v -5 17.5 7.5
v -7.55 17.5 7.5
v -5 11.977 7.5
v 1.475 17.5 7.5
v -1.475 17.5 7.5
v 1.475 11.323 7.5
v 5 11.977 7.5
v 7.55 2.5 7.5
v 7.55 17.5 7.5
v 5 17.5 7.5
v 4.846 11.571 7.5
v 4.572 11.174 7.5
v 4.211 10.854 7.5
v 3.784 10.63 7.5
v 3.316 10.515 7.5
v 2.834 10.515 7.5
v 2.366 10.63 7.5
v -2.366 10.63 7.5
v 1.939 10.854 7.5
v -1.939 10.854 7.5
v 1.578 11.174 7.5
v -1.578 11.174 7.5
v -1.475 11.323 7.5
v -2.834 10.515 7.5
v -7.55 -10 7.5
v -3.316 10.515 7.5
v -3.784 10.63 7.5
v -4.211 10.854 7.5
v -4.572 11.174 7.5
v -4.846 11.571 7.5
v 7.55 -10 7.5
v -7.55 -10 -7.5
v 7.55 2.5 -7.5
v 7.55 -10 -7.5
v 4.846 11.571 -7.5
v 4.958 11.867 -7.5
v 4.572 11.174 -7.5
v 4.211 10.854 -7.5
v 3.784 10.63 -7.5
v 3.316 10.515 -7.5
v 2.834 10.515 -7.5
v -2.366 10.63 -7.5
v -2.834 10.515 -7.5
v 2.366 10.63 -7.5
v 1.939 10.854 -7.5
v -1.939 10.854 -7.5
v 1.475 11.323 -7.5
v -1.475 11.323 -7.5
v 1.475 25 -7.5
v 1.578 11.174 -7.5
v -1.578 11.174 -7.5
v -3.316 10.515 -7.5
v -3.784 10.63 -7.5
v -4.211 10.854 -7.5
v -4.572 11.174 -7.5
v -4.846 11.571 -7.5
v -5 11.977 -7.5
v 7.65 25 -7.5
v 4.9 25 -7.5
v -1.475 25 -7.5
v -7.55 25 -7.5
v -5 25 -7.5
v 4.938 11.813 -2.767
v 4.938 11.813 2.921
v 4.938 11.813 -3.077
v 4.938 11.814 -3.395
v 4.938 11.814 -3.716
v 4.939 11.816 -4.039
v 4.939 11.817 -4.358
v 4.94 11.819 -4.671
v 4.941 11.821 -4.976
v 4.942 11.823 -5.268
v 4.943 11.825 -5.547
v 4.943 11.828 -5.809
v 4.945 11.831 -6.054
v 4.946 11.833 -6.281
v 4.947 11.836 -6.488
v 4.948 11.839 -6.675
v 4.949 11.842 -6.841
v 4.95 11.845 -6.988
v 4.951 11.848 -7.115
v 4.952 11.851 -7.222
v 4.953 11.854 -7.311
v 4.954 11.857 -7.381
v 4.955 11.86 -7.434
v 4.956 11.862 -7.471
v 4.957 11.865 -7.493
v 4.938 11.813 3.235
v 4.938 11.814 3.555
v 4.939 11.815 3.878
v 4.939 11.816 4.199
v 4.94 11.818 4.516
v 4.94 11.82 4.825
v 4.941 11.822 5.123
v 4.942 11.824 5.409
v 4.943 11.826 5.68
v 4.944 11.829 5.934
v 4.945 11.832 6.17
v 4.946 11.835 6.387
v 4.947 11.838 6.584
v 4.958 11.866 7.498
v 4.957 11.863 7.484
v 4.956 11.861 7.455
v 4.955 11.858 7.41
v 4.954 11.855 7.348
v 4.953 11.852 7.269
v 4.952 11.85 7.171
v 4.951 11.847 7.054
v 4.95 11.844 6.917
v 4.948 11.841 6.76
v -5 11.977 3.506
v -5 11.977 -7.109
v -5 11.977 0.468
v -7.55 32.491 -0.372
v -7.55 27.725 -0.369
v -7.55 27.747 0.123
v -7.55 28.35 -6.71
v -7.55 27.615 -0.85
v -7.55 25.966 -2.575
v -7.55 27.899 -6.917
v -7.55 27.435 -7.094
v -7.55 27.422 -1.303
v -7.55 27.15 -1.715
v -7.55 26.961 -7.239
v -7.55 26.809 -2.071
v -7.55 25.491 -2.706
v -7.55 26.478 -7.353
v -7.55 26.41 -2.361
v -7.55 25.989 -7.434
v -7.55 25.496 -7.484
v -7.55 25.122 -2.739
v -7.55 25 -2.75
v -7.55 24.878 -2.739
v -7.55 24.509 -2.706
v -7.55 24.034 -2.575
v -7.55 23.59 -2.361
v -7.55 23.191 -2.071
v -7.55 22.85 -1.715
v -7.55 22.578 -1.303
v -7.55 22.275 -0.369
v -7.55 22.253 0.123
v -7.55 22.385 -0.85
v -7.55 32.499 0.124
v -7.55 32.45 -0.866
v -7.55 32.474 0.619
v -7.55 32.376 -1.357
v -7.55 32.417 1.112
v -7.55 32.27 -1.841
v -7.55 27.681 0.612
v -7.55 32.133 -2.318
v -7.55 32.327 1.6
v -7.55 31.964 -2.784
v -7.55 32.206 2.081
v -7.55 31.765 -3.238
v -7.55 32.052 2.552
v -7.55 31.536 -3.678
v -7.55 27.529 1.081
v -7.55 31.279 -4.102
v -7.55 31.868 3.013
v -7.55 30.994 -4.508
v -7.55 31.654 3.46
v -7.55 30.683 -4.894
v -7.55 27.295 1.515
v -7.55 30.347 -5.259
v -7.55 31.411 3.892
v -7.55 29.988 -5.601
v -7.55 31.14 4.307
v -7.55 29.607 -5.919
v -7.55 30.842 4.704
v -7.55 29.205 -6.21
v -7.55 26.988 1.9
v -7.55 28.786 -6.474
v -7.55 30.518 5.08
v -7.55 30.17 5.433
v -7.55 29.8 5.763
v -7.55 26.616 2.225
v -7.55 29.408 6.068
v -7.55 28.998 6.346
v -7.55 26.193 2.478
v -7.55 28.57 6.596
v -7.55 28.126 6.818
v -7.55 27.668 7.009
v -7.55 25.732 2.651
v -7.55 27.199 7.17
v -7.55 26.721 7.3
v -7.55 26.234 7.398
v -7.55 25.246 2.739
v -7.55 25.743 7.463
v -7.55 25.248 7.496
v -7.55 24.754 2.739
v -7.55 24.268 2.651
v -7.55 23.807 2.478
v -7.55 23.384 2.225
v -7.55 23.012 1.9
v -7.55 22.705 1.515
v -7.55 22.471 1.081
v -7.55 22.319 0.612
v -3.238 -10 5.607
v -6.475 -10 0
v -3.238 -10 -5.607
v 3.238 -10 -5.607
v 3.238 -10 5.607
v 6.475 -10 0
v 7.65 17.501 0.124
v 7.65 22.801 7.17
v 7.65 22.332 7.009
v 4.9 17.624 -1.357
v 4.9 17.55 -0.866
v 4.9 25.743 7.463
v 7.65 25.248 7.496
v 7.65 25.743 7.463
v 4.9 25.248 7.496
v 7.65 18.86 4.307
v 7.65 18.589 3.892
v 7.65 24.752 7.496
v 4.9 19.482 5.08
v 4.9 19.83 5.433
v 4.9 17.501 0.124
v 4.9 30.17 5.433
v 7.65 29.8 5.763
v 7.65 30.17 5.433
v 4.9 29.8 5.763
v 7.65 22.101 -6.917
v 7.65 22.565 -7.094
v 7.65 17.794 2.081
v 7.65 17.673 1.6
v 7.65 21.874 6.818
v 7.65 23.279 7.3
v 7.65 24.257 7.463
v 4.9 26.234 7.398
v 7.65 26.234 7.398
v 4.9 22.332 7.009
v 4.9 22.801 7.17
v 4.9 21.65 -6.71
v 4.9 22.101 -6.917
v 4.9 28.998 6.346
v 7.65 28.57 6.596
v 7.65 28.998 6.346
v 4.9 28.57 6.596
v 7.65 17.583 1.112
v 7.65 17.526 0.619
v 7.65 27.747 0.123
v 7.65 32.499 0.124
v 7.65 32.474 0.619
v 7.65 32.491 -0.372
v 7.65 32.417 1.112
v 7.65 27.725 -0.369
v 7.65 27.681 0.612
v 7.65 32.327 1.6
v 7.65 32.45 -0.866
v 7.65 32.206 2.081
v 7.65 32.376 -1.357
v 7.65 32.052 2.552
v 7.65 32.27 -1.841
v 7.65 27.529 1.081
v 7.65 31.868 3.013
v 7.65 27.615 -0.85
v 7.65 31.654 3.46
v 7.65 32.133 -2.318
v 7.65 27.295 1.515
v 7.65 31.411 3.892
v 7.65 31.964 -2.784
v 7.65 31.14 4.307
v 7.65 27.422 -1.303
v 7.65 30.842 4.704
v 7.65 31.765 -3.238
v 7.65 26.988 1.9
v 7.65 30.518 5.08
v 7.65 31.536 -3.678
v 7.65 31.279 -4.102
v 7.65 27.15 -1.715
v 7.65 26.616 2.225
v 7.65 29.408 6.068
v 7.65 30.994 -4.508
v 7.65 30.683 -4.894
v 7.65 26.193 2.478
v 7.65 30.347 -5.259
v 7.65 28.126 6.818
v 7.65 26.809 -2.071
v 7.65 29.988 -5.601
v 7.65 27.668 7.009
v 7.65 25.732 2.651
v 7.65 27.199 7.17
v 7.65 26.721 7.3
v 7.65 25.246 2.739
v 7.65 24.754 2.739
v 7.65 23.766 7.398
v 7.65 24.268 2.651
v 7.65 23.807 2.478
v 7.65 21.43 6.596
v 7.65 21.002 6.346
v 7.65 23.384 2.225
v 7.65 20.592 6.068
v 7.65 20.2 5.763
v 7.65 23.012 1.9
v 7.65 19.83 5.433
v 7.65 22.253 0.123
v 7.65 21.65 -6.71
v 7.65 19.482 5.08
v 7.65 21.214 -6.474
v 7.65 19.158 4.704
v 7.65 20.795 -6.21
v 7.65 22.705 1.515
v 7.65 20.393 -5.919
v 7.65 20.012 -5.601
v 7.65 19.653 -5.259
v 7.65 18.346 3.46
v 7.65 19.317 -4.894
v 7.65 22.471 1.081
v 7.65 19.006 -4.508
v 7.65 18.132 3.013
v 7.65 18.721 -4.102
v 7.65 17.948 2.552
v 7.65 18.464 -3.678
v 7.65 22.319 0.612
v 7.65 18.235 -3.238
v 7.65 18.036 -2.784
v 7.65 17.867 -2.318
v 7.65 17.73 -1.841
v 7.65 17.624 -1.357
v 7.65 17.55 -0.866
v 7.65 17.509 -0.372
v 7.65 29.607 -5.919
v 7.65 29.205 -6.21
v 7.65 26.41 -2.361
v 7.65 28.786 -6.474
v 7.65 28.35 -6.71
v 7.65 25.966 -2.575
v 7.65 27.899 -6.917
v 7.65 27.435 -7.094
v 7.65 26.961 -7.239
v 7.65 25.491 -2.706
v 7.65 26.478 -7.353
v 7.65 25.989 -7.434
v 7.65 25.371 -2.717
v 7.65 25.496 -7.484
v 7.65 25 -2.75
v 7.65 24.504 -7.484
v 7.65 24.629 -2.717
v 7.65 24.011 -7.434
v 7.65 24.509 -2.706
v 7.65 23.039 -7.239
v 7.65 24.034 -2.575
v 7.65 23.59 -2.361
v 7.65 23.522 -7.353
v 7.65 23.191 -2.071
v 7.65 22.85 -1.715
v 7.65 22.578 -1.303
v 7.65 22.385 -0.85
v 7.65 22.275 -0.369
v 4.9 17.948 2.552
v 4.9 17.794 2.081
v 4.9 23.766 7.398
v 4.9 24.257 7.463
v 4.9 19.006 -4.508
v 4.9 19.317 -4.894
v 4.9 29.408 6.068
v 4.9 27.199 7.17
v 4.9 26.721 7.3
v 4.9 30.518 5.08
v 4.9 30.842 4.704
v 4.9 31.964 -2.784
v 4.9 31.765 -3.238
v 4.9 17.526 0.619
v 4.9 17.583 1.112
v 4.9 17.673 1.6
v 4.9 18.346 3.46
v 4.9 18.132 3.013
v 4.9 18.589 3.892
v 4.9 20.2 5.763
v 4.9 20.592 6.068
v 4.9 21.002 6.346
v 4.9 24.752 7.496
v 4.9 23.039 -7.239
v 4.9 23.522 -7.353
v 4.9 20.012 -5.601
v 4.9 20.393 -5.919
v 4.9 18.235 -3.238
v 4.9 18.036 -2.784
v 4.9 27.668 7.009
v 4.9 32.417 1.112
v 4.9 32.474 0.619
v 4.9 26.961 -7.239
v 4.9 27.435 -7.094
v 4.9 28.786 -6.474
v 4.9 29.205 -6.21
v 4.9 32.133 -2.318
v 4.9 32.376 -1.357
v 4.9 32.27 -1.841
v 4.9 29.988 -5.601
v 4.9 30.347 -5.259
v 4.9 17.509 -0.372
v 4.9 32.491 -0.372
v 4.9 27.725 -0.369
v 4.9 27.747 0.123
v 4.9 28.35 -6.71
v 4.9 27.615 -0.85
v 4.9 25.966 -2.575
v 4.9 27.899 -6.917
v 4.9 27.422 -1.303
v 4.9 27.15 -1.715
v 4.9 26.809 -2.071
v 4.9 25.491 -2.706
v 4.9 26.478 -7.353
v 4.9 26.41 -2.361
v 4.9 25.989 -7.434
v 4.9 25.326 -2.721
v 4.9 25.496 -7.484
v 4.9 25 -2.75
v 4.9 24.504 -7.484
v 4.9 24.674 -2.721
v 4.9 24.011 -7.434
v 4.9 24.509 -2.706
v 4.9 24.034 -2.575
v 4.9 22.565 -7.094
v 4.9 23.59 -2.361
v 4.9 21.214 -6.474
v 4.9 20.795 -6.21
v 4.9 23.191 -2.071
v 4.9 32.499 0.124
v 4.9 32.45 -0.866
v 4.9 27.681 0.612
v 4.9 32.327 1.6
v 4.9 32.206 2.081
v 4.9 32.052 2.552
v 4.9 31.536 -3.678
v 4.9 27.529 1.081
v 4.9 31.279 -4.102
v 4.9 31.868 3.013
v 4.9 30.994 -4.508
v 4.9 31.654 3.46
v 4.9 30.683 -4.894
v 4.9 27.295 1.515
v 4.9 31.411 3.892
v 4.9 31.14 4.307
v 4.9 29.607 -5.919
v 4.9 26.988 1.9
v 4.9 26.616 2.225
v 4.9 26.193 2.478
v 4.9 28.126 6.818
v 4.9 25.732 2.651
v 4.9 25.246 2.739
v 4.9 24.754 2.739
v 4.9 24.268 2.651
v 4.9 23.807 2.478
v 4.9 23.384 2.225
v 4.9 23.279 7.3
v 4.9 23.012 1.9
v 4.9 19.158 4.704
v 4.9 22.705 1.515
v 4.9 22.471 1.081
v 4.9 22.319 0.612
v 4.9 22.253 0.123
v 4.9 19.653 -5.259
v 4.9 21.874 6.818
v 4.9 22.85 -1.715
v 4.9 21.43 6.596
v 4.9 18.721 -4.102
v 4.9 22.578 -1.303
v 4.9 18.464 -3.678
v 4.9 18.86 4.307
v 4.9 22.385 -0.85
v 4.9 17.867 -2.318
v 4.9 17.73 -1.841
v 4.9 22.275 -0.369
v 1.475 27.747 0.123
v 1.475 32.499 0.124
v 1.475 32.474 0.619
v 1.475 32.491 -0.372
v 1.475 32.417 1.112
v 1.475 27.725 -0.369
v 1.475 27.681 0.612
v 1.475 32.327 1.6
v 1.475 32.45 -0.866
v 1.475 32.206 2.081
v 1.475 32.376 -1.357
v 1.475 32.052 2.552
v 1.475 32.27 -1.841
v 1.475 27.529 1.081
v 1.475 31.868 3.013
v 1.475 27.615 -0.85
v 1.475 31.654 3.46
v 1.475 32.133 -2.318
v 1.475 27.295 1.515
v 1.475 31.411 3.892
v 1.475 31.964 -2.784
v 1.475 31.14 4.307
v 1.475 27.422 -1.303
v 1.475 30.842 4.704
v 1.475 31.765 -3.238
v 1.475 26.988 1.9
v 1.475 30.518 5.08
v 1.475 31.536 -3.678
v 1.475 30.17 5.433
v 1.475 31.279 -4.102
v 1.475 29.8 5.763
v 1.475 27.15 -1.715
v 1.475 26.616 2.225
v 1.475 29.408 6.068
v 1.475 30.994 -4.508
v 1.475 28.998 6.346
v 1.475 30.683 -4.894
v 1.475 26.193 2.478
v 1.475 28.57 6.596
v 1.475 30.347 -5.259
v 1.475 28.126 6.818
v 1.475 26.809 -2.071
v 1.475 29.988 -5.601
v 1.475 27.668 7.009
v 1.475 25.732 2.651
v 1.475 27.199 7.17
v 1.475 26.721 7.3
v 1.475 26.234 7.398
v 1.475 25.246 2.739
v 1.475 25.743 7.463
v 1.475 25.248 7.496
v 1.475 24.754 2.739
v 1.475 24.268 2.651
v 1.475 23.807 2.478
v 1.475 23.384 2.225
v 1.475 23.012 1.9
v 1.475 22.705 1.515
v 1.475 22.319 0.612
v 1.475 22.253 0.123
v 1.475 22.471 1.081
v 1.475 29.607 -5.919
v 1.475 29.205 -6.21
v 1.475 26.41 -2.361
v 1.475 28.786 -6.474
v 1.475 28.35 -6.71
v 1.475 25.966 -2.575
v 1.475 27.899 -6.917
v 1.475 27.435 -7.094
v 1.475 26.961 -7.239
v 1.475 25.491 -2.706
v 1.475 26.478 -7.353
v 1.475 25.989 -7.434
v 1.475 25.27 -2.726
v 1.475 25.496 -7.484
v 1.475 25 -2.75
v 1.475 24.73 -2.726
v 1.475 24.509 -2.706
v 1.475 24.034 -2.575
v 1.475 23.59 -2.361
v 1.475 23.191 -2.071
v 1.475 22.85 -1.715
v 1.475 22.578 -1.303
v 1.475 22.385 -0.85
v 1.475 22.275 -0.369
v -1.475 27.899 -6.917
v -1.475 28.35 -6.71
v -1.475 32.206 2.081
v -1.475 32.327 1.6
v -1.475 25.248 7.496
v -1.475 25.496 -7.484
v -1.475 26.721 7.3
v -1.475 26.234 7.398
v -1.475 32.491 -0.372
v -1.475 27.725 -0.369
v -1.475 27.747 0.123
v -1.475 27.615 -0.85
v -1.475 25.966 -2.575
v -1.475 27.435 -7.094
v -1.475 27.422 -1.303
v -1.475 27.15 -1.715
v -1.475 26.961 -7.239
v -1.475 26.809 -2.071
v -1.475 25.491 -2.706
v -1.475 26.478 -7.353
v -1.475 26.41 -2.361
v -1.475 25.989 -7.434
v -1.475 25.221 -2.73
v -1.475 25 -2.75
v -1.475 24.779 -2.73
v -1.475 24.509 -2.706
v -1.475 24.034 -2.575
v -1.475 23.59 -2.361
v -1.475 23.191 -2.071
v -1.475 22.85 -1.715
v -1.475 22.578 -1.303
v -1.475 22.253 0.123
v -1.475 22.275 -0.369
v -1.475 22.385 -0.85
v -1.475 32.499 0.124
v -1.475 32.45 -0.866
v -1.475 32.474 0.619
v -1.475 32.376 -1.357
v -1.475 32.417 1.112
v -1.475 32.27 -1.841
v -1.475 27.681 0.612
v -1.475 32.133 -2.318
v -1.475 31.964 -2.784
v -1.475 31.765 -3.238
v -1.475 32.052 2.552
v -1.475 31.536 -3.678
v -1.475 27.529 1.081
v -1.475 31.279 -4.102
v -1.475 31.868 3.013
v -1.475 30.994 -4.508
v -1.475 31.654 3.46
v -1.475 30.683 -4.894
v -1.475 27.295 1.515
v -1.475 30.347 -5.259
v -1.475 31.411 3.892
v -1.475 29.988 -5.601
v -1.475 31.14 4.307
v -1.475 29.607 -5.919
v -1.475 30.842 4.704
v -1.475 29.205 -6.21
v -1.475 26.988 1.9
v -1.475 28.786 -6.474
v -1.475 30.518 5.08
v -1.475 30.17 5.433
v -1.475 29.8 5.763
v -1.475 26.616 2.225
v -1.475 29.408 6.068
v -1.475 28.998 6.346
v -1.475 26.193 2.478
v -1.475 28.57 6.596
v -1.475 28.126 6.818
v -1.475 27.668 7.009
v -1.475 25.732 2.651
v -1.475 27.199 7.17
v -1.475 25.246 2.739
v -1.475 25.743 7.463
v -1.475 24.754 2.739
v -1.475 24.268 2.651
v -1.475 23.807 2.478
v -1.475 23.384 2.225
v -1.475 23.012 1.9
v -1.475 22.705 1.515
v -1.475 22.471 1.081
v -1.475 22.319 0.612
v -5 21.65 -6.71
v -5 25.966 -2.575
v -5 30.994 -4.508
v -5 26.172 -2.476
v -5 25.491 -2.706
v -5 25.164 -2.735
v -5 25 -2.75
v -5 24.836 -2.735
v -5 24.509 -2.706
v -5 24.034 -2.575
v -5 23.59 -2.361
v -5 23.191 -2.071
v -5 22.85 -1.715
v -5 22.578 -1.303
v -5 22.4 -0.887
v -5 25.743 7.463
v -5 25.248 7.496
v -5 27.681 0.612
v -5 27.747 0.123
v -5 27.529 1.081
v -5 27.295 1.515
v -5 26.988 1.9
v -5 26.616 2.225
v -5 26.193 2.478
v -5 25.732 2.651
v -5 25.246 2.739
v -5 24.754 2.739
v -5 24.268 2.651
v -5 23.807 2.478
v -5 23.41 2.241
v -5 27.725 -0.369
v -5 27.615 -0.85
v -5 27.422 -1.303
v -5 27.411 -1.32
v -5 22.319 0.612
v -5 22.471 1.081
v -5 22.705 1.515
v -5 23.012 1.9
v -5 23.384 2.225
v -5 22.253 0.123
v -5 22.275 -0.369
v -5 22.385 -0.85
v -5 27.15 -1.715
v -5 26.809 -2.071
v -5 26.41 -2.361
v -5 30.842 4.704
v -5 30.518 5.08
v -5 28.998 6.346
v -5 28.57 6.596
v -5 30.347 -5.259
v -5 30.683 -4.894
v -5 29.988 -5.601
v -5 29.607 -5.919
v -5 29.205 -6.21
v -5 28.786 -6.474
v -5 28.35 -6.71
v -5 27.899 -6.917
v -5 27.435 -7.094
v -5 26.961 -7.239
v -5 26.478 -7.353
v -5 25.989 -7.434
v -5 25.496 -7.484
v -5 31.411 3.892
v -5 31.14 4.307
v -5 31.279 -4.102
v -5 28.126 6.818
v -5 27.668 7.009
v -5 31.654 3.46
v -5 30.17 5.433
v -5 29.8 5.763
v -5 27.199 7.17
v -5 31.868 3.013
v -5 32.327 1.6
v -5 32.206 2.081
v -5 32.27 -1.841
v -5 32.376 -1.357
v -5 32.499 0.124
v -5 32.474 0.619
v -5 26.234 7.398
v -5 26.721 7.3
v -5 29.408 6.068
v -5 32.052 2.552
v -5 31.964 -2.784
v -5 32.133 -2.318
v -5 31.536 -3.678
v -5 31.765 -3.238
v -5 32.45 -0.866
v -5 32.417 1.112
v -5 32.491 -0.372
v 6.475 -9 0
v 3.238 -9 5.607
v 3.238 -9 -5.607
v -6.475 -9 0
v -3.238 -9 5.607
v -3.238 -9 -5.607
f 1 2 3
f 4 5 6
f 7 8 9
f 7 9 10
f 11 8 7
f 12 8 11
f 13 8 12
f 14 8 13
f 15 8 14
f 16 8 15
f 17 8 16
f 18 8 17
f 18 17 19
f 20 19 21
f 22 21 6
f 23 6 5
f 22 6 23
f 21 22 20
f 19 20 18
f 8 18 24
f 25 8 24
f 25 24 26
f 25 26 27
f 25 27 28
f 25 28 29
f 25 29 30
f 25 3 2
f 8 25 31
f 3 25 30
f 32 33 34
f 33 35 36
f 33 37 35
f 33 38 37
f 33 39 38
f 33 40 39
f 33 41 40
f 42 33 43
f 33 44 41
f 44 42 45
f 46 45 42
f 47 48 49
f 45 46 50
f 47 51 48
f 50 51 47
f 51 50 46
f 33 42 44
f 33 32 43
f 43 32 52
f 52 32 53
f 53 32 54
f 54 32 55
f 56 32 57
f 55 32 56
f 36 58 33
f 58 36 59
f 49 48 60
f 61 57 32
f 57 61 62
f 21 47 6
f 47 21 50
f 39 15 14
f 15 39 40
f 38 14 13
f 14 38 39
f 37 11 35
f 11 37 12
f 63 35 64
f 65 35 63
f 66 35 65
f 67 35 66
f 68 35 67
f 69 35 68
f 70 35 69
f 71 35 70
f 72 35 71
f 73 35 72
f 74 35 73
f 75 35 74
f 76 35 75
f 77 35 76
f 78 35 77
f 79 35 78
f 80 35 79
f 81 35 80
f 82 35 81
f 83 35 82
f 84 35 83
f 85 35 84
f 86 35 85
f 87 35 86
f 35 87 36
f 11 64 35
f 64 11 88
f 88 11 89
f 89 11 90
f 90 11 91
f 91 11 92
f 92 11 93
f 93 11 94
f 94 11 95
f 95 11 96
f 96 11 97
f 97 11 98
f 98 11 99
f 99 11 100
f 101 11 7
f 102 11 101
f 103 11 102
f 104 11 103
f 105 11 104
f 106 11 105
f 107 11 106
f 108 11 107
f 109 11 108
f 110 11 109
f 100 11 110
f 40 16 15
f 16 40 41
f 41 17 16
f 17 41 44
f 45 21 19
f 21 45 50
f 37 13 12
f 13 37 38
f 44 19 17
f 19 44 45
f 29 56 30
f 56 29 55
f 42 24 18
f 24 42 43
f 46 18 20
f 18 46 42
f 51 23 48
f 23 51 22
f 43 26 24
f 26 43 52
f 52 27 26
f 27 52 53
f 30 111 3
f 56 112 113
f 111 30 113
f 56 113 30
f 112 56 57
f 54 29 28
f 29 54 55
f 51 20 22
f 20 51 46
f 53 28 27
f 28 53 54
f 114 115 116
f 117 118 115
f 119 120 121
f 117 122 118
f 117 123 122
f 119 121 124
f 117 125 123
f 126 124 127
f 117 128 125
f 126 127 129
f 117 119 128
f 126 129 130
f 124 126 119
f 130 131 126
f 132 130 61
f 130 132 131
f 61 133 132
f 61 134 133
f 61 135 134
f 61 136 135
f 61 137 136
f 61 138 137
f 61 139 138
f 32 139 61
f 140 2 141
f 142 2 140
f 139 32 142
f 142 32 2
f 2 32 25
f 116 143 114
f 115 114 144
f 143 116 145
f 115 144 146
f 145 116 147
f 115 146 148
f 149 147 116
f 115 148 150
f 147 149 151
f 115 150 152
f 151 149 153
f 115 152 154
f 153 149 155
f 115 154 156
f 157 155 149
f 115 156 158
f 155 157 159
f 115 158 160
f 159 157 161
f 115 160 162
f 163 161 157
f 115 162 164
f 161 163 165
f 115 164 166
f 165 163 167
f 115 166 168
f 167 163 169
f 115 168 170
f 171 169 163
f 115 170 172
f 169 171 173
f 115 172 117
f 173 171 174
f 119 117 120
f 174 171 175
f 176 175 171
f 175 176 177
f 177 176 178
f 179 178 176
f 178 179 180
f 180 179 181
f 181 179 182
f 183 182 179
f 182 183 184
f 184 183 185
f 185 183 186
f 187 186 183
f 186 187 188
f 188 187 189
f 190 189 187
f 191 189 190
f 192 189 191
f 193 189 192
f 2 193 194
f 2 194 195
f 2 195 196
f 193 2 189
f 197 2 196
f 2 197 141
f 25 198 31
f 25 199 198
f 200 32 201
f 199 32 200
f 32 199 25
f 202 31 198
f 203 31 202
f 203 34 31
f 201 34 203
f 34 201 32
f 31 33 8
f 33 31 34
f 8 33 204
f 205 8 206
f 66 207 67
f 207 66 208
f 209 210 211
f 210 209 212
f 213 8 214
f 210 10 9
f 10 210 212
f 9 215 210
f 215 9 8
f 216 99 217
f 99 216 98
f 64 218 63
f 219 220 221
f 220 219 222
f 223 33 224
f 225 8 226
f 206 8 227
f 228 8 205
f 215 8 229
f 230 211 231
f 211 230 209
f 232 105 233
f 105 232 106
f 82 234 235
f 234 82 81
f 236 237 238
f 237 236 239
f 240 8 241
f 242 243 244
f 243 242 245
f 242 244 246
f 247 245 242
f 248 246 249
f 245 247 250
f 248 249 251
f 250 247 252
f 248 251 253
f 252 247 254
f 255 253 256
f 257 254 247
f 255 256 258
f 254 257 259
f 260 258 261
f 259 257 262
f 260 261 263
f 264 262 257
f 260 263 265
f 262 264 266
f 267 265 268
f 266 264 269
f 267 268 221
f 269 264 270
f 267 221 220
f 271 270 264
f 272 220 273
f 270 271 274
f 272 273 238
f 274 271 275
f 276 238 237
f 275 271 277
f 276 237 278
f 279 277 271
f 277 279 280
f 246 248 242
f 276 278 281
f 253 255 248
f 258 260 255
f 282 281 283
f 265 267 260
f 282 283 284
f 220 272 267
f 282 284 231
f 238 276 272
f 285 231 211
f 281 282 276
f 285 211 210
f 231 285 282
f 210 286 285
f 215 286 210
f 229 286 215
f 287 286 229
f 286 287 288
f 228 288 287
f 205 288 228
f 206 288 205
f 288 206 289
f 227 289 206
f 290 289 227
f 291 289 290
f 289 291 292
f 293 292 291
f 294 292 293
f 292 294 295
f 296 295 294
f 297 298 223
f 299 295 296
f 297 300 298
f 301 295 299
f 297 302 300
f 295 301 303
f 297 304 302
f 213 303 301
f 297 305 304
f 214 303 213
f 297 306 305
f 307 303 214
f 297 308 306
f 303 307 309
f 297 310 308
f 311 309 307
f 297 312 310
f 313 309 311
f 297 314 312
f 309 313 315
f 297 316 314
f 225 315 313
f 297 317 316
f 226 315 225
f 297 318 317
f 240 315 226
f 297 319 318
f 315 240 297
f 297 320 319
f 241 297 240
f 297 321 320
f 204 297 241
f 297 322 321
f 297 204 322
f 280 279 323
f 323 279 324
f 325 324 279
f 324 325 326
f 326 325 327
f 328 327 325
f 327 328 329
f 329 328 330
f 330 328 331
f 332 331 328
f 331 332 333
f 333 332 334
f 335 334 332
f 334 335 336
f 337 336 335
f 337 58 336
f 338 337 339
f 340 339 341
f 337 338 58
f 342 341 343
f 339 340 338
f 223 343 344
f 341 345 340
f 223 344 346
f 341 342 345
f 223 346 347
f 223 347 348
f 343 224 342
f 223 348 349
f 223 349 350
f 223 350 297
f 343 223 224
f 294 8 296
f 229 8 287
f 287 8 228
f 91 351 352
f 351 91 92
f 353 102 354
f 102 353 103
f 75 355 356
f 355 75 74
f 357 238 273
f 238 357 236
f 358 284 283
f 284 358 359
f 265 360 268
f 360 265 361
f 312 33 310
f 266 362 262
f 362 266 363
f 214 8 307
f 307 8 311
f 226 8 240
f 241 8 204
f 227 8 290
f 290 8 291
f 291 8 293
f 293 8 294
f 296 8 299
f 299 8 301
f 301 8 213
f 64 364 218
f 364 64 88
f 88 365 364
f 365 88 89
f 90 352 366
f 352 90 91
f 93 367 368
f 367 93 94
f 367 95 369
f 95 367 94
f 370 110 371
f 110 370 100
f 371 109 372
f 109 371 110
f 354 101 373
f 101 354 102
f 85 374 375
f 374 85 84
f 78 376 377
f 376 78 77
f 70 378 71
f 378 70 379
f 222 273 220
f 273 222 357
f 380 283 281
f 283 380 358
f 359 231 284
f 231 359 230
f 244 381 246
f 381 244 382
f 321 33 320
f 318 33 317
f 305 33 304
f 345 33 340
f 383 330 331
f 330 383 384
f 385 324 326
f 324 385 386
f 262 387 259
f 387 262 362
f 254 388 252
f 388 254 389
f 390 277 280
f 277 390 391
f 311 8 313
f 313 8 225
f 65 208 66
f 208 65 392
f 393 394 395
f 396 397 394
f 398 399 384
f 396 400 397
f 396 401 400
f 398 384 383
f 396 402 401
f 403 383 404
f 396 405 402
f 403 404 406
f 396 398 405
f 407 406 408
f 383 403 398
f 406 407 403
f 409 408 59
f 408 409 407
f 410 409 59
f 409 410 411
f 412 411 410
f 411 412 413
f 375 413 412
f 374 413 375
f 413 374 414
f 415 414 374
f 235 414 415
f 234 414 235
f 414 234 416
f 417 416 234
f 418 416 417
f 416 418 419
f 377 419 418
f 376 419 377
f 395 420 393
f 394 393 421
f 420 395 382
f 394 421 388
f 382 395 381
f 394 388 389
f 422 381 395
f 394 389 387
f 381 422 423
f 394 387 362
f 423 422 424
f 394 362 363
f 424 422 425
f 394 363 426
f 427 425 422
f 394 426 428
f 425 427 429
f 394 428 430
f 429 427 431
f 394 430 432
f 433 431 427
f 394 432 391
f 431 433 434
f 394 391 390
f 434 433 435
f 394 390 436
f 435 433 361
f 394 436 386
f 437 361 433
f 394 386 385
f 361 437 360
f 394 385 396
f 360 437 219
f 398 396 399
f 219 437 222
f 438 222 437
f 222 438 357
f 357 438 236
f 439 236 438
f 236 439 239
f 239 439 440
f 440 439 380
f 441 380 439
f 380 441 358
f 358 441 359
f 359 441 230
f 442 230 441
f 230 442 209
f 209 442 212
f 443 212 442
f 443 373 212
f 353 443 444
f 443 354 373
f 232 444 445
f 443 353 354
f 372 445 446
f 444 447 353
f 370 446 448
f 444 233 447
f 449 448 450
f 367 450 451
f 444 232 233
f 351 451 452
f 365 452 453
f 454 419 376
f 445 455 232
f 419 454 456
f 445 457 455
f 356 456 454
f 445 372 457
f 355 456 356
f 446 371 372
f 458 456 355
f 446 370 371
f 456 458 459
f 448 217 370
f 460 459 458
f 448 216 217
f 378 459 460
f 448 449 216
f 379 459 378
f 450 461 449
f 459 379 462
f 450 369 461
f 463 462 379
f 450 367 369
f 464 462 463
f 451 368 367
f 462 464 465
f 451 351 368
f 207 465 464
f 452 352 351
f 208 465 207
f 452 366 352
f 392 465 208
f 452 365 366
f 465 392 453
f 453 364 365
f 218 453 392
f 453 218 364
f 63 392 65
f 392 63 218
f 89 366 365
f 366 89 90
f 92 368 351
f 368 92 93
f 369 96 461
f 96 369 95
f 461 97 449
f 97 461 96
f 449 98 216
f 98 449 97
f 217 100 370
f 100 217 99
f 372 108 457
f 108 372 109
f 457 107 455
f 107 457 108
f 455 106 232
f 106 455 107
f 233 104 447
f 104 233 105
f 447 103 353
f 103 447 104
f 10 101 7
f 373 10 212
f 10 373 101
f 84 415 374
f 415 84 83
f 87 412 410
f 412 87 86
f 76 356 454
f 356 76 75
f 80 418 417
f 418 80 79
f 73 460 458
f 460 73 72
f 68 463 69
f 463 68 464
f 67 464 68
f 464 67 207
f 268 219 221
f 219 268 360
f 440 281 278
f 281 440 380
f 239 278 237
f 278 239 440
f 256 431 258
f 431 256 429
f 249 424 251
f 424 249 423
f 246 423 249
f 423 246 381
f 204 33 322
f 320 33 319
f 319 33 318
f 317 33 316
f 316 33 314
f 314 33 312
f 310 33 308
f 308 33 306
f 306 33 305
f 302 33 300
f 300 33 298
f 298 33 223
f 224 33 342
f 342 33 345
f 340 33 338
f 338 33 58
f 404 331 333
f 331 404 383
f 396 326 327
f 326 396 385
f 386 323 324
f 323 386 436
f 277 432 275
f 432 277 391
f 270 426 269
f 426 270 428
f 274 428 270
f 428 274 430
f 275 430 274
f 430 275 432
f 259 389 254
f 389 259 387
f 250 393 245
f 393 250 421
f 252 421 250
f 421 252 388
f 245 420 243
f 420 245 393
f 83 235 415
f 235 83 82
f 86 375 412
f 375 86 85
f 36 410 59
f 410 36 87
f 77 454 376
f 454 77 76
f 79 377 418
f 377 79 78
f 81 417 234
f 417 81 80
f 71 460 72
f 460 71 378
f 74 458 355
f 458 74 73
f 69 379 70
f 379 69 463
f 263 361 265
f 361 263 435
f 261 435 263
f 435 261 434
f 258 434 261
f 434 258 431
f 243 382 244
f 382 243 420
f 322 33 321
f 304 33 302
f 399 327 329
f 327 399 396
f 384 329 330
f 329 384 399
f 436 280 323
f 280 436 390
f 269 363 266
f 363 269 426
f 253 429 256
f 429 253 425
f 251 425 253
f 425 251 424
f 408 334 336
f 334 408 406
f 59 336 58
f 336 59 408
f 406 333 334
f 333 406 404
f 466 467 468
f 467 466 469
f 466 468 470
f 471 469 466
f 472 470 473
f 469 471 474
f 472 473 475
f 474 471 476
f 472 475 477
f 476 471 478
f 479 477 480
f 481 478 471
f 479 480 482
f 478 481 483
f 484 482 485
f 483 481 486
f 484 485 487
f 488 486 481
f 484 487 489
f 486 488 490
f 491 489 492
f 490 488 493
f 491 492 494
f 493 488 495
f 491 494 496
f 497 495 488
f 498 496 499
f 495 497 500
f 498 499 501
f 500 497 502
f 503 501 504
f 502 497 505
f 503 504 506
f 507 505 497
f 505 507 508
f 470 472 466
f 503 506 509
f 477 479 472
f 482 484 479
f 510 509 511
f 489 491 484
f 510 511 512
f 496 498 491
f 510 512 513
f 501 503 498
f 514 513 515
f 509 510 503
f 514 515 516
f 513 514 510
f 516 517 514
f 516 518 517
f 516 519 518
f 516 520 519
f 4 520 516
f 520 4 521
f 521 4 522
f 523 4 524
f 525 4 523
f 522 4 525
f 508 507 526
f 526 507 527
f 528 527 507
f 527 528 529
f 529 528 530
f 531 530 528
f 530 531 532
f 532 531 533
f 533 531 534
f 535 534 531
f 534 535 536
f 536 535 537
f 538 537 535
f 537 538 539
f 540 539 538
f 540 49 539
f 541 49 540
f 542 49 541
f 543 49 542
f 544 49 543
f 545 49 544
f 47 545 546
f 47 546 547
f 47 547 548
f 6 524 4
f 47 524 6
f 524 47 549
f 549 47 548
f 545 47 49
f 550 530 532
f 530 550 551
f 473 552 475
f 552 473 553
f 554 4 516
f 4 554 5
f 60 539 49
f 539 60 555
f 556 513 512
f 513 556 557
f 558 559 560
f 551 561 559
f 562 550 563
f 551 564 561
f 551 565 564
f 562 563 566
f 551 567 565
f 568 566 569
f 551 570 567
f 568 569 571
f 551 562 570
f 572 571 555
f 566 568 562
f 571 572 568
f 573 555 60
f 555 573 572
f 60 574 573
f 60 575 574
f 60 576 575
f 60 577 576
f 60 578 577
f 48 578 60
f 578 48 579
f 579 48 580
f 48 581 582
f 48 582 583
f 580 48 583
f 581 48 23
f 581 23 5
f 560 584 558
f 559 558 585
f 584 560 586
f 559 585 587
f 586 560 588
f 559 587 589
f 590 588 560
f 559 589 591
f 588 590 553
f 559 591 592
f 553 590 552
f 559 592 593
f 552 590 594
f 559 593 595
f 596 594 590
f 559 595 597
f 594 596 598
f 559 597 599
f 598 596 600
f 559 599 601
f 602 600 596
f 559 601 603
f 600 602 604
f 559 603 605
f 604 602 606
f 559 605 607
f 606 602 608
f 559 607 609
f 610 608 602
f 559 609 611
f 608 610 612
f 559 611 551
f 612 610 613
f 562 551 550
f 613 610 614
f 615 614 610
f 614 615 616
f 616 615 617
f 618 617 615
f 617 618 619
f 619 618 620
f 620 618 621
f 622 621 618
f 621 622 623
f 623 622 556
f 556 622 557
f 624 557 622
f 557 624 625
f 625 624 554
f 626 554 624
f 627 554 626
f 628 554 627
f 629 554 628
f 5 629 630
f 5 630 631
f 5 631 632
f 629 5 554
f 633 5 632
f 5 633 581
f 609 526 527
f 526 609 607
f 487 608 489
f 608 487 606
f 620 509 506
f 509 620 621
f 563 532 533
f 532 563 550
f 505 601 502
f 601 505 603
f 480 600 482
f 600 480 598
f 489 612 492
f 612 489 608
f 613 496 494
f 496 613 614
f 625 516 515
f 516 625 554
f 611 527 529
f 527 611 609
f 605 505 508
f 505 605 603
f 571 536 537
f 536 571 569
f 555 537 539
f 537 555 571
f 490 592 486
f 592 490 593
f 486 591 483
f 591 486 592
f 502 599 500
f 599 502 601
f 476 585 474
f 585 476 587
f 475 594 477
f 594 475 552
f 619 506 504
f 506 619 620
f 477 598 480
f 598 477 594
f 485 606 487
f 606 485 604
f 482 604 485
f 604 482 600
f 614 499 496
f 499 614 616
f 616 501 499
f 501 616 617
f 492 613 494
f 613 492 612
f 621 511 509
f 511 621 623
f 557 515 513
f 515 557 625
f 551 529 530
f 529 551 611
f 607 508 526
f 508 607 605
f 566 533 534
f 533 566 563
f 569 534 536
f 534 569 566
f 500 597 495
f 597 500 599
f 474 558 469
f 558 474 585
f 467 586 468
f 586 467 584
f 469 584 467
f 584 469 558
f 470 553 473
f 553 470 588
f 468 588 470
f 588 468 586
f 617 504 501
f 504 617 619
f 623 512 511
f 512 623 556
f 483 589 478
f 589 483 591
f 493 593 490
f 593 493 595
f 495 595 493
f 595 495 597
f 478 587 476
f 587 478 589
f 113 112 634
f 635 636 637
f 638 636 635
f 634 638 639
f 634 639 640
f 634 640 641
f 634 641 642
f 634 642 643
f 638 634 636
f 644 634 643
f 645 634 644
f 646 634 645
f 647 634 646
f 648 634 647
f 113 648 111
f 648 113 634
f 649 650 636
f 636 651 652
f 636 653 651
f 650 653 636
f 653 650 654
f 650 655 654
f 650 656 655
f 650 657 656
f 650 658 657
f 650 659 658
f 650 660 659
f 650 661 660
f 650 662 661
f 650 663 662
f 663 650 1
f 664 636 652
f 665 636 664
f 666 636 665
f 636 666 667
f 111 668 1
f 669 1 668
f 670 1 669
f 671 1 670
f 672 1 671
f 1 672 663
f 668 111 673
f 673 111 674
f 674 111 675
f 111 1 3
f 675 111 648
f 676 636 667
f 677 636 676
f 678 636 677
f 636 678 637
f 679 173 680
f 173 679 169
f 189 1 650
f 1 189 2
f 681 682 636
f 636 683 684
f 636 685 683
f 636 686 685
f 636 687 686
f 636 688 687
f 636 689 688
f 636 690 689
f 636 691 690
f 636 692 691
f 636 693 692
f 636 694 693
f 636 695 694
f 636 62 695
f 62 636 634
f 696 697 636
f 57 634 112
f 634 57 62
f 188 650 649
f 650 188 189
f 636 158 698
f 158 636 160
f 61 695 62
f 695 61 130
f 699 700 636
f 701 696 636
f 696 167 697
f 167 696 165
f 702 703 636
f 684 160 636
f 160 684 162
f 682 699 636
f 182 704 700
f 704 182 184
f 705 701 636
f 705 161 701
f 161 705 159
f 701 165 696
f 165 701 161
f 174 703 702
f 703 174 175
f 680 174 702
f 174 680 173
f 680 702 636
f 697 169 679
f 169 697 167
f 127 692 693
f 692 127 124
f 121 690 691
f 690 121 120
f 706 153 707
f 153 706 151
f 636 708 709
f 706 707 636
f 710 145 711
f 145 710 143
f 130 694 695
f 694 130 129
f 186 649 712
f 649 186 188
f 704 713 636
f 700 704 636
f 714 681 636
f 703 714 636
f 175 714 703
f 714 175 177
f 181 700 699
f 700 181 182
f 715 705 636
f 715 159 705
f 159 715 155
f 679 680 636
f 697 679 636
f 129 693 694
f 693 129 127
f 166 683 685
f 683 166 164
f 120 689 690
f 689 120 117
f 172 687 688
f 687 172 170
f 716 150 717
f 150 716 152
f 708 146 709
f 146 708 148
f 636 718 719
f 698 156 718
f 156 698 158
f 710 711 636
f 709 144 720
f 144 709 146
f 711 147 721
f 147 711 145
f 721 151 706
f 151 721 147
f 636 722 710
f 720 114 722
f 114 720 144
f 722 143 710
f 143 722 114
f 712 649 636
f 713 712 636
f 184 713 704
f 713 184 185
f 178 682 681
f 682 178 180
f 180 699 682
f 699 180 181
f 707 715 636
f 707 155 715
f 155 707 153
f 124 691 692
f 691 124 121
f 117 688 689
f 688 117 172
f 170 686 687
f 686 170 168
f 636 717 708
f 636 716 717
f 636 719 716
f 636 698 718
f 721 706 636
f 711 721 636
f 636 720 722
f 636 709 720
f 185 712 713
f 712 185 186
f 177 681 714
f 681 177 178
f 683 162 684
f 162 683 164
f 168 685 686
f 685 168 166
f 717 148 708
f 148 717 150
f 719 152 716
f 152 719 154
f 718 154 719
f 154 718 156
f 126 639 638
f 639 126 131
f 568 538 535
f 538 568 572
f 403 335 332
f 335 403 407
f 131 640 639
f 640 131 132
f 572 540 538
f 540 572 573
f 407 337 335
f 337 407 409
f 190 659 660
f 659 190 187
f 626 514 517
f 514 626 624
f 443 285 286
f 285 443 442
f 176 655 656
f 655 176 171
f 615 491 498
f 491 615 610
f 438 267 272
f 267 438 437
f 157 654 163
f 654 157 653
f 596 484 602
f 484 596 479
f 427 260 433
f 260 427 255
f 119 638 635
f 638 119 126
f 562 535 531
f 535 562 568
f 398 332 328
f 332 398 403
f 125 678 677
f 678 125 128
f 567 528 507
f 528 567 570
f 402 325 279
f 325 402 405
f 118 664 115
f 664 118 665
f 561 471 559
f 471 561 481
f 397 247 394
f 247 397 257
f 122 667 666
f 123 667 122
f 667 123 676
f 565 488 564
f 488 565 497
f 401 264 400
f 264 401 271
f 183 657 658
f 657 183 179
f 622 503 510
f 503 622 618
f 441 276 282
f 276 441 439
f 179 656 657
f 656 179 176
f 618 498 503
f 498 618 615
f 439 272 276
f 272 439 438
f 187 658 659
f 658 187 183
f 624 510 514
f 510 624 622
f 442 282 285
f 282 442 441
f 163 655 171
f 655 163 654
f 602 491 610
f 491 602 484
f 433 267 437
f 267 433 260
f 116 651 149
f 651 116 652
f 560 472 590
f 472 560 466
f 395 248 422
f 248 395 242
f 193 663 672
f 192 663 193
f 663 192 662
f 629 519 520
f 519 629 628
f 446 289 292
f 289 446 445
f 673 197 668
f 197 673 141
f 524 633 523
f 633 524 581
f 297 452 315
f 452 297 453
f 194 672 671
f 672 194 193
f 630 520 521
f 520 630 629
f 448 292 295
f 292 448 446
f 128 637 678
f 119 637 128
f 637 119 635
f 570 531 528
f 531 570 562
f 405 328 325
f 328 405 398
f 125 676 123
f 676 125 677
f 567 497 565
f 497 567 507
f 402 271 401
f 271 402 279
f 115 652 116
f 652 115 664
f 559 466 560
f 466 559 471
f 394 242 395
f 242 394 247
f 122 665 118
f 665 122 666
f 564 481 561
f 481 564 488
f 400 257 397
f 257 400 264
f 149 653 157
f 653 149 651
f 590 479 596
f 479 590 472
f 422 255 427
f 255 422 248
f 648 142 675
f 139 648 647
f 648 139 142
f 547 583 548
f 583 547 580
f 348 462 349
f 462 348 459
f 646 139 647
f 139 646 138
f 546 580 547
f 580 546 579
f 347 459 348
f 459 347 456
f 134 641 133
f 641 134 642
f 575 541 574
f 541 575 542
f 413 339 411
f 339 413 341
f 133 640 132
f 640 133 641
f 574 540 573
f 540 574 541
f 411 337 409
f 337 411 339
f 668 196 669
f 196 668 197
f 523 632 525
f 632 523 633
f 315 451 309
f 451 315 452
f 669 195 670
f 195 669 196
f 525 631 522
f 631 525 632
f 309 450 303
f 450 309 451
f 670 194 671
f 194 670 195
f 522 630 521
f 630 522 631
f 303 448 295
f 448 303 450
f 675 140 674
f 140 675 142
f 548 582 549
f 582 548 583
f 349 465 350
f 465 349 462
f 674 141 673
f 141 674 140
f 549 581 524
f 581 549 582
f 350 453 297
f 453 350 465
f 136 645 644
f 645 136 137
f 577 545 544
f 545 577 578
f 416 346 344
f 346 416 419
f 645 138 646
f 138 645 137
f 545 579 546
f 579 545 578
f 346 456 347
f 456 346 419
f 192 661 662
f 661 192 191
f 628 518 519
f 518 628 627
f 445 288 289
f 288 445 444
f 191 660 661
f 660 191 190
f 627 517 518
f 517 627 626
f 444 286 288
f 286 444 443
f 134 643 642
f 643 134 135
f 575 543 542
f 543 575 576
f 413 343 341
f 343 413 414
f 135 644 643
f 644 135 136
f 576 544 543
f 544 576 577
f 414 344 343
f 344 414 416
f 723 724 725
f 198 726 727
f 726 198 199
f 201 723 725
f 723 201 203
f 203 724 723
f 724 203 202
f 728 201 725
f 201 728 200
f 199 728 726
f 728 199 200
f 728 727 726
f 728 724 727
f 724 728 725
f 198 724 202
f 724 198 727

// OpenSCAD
// file: hexagon-mxm.scad
// Created by Matthew Alexander Manuel 2016-03-09
// matt@mattmanuel.com http://www.mattmanuel.com
// The MIT License (MIT)
/* Copyright (c) 2016 Matthew Alexander Manuel

Permission is hereby granted, free of charge, to any person obtaining a copy of this software and associated documentation files (the "Software"), to deal in the Software without restriction, including without limitation the rights to use, copy, modify, merge, publish, distribute, sublicense, and/or sell copies of the Software, and to permit persons to whom the Software is furnished to do so, subject to the following conditions:

The above copyright notice and this permission notice shall be included in all copies or substantial portions of the Software.

THE SOFTWARE IS PROVIDED "AS IS", WITHOUT WARRANTY OF ANY KIND, EXPRESS OR IMPLIED, INCLUDING BUT NOT LIMITED TO THE WARRANTIES OF MERCHANTABILITY, FITNESS FOR A PARTICULAR PURPOSE AND NONINFRINGEMENT. IN NO EVENT SHALL THE AUTHORS OR COPYRIGHT HOLDERS BE LIABLE FOR ANY CLAIM, DAMAGES OR OTHER LIABILITY, WHETHER IN AN ACTION OF CONTRACT, TORT OR OTHERWISE, ARISING FROM, OUT OF OR IN CONNECTION WITH THE SOFTWARE OR THE USE OR OTHER DEALINGS IN THE SOFTWARE.
*/

// size is the XY plane size, height in Z
module hexagon(scaleSize, extrudeHeight) {
    // circumscribed size -- circle radius touching points, not sides
    sin30 = sin(30); // pre-calculate to save CPU cycles a bit (probably not necessary, but a good practice)
    cos30 = cos(30);
    scale([scaleSize,scaleSize,1]) linear_extrude(height = extrudeHeight, center = true) polygon(points = [ [1,0],[sin30,cos30],[-sin30,cos30],[-1,0],[-sin30,-cos30],[sin30,-cos30]] );
        
}

hexagon(10,10);
// main file
// Created by Matthew Alexander Manuel 2016-03-09
// matt@mattmanuel.com http://www.mattmanuel.com
// The MIT License (MIT)
/* Copyright (c) 2016 Matthew Alexander Manuel

Permission is hereby granted, free of charge, to any person obtaining a copy of this software and associated documentation files (the "Software"), to deal in the Software without restriction, including without limitation the rights to use, copy, modify, merge, publish, distribute, sublicense, and/or sell copies of the Software, and to permit persons to whom the Software is furnished to do so, subject to the following conditions:

The above copyright notice and this permission notice shall be included in all copies or substantial portions of the Software.

THE SOFTWARE IS PROVIDED "AS IS", WITHOUT WARRANTY OF ANY KIND, EXPRESS OR IMPLIED, INCLUDING BUT NOT LIMITED TO THE WARRANTIES OF MERCHANTABILITY, FITNESS FOR A PARTICULAR PURPOSE AND NONINFRINGEMENT. IN NO EVENT SHALL THE AUTHORS OR COPYRIGHT HOLDERS BE LIABLE FOR ANY CLAIM, DAMAGES OR OTHER LIABILITY, WHETHER IN AN ACTION OF CONTRACT, TORT OR OTHERWISE, ARISING FROM, OUT OF OR IN CONNECTION WITH THE SOFTWARE OR THE USE OR OTHER DEALINGS IN THE SOFTWARE.
*/

use <hexagon-mxm.scad>

$fs = 0.5;
$fa = 3;
slopValue = 0.2; // mm, suggested to be half the nozzle size of your printer
// mount is oriented so "up" is along the y-axis
// baseHeight starts at 0 on y-axis and goes negative
module GoProMount(baseHeight) {
    outsideDiameter = 15; // mm
    insideDiameter = 5.5; // mm
    minimumBaseHeight = 10; // mm
    outsideProngWidth = 2.75 - slopValue; // mm
    insideProngWidth = 3.15 - slopValue; // mm
    quarterTwentyNutRadius = 12.55/2; //mm (for tripod mount)
    
    difference() {
        union() {
            hull() {
                translate([0,-baseHeight/2,0]) cube([15.1,(baseHeight),15], center = true);
                translate([0,minimumBaseHeight/2,0]) cube([15.1, minimumBaseHeight, 15], center = true);
            }
            // leftProng;
            translate([15.1/2-outsideProngWidth/2,minimumBaseHeight,0]) hull() {
                cube([outsideProngWidth,outsideDiameter,15], center = true);
                translate([0,outsideDiameter,0]) rotate([0,90,0]) cylinder(h= 2.75, d = outsideDiameter, center = true);
            }
            // centerProng
            translate([0,minimumBaseHeight,0]) hull() {
                cube([insideProngWidth,outsideDiameter,15], center = true);
                translate([0,outsideDiameter,0]) rotate([0,90,0]) cylinder(h= insideProngWidth, d = outsideDiameter, center = true);
            }
            // rightProng
            translate([-(15.1/2-outsideProngWidth/2),minimumBaseHeight,0]) hull() {
                cube([outsideProngWidth,outsideDiameter,15], center = true);
                translate([0,outsideDiameter,0]) rotate([0,90,0]) cylinder(h= outsideProngWidth, d = outsideDiameter, center = true);
            }
             translate([insideProngWidth/2+1.6,minimumBaseHeight+2.5,0]) {
                difference() {
                    cylinder(15,d = 8,center = true);
                    cylinder(22,d = 4,center = true);
                    translate([0,5,0]) cube([10,10,25],center = true);
                }
            }
            
            translate([-(insideProngWidth/2+1.6),minimumBaseHeight+2.5,0]) {
                difference() {
                    cylinder(15,d = 8,center = true);
                    cylinder(22,d = 4,center = true);
                    translate([0,5,0]) cube([10,10,25],center = true);
                }
            }
    
       }
       translate([0,minimumBaseHeight + outsideDiameter,0]) rotate([0,90,0]) cylinder(h = 30, d = insideDiameter, center = true);
       // hex cutout for 1/4 20-pitch nut for tripod mount
        translate([0,-baseHeight,0]) rotate([90,0,0]) hexagon(quarterTwentyNutRadius + slopValue,2);
    }
}

color("Green", alpha = 0.7) GoProMount(10);
